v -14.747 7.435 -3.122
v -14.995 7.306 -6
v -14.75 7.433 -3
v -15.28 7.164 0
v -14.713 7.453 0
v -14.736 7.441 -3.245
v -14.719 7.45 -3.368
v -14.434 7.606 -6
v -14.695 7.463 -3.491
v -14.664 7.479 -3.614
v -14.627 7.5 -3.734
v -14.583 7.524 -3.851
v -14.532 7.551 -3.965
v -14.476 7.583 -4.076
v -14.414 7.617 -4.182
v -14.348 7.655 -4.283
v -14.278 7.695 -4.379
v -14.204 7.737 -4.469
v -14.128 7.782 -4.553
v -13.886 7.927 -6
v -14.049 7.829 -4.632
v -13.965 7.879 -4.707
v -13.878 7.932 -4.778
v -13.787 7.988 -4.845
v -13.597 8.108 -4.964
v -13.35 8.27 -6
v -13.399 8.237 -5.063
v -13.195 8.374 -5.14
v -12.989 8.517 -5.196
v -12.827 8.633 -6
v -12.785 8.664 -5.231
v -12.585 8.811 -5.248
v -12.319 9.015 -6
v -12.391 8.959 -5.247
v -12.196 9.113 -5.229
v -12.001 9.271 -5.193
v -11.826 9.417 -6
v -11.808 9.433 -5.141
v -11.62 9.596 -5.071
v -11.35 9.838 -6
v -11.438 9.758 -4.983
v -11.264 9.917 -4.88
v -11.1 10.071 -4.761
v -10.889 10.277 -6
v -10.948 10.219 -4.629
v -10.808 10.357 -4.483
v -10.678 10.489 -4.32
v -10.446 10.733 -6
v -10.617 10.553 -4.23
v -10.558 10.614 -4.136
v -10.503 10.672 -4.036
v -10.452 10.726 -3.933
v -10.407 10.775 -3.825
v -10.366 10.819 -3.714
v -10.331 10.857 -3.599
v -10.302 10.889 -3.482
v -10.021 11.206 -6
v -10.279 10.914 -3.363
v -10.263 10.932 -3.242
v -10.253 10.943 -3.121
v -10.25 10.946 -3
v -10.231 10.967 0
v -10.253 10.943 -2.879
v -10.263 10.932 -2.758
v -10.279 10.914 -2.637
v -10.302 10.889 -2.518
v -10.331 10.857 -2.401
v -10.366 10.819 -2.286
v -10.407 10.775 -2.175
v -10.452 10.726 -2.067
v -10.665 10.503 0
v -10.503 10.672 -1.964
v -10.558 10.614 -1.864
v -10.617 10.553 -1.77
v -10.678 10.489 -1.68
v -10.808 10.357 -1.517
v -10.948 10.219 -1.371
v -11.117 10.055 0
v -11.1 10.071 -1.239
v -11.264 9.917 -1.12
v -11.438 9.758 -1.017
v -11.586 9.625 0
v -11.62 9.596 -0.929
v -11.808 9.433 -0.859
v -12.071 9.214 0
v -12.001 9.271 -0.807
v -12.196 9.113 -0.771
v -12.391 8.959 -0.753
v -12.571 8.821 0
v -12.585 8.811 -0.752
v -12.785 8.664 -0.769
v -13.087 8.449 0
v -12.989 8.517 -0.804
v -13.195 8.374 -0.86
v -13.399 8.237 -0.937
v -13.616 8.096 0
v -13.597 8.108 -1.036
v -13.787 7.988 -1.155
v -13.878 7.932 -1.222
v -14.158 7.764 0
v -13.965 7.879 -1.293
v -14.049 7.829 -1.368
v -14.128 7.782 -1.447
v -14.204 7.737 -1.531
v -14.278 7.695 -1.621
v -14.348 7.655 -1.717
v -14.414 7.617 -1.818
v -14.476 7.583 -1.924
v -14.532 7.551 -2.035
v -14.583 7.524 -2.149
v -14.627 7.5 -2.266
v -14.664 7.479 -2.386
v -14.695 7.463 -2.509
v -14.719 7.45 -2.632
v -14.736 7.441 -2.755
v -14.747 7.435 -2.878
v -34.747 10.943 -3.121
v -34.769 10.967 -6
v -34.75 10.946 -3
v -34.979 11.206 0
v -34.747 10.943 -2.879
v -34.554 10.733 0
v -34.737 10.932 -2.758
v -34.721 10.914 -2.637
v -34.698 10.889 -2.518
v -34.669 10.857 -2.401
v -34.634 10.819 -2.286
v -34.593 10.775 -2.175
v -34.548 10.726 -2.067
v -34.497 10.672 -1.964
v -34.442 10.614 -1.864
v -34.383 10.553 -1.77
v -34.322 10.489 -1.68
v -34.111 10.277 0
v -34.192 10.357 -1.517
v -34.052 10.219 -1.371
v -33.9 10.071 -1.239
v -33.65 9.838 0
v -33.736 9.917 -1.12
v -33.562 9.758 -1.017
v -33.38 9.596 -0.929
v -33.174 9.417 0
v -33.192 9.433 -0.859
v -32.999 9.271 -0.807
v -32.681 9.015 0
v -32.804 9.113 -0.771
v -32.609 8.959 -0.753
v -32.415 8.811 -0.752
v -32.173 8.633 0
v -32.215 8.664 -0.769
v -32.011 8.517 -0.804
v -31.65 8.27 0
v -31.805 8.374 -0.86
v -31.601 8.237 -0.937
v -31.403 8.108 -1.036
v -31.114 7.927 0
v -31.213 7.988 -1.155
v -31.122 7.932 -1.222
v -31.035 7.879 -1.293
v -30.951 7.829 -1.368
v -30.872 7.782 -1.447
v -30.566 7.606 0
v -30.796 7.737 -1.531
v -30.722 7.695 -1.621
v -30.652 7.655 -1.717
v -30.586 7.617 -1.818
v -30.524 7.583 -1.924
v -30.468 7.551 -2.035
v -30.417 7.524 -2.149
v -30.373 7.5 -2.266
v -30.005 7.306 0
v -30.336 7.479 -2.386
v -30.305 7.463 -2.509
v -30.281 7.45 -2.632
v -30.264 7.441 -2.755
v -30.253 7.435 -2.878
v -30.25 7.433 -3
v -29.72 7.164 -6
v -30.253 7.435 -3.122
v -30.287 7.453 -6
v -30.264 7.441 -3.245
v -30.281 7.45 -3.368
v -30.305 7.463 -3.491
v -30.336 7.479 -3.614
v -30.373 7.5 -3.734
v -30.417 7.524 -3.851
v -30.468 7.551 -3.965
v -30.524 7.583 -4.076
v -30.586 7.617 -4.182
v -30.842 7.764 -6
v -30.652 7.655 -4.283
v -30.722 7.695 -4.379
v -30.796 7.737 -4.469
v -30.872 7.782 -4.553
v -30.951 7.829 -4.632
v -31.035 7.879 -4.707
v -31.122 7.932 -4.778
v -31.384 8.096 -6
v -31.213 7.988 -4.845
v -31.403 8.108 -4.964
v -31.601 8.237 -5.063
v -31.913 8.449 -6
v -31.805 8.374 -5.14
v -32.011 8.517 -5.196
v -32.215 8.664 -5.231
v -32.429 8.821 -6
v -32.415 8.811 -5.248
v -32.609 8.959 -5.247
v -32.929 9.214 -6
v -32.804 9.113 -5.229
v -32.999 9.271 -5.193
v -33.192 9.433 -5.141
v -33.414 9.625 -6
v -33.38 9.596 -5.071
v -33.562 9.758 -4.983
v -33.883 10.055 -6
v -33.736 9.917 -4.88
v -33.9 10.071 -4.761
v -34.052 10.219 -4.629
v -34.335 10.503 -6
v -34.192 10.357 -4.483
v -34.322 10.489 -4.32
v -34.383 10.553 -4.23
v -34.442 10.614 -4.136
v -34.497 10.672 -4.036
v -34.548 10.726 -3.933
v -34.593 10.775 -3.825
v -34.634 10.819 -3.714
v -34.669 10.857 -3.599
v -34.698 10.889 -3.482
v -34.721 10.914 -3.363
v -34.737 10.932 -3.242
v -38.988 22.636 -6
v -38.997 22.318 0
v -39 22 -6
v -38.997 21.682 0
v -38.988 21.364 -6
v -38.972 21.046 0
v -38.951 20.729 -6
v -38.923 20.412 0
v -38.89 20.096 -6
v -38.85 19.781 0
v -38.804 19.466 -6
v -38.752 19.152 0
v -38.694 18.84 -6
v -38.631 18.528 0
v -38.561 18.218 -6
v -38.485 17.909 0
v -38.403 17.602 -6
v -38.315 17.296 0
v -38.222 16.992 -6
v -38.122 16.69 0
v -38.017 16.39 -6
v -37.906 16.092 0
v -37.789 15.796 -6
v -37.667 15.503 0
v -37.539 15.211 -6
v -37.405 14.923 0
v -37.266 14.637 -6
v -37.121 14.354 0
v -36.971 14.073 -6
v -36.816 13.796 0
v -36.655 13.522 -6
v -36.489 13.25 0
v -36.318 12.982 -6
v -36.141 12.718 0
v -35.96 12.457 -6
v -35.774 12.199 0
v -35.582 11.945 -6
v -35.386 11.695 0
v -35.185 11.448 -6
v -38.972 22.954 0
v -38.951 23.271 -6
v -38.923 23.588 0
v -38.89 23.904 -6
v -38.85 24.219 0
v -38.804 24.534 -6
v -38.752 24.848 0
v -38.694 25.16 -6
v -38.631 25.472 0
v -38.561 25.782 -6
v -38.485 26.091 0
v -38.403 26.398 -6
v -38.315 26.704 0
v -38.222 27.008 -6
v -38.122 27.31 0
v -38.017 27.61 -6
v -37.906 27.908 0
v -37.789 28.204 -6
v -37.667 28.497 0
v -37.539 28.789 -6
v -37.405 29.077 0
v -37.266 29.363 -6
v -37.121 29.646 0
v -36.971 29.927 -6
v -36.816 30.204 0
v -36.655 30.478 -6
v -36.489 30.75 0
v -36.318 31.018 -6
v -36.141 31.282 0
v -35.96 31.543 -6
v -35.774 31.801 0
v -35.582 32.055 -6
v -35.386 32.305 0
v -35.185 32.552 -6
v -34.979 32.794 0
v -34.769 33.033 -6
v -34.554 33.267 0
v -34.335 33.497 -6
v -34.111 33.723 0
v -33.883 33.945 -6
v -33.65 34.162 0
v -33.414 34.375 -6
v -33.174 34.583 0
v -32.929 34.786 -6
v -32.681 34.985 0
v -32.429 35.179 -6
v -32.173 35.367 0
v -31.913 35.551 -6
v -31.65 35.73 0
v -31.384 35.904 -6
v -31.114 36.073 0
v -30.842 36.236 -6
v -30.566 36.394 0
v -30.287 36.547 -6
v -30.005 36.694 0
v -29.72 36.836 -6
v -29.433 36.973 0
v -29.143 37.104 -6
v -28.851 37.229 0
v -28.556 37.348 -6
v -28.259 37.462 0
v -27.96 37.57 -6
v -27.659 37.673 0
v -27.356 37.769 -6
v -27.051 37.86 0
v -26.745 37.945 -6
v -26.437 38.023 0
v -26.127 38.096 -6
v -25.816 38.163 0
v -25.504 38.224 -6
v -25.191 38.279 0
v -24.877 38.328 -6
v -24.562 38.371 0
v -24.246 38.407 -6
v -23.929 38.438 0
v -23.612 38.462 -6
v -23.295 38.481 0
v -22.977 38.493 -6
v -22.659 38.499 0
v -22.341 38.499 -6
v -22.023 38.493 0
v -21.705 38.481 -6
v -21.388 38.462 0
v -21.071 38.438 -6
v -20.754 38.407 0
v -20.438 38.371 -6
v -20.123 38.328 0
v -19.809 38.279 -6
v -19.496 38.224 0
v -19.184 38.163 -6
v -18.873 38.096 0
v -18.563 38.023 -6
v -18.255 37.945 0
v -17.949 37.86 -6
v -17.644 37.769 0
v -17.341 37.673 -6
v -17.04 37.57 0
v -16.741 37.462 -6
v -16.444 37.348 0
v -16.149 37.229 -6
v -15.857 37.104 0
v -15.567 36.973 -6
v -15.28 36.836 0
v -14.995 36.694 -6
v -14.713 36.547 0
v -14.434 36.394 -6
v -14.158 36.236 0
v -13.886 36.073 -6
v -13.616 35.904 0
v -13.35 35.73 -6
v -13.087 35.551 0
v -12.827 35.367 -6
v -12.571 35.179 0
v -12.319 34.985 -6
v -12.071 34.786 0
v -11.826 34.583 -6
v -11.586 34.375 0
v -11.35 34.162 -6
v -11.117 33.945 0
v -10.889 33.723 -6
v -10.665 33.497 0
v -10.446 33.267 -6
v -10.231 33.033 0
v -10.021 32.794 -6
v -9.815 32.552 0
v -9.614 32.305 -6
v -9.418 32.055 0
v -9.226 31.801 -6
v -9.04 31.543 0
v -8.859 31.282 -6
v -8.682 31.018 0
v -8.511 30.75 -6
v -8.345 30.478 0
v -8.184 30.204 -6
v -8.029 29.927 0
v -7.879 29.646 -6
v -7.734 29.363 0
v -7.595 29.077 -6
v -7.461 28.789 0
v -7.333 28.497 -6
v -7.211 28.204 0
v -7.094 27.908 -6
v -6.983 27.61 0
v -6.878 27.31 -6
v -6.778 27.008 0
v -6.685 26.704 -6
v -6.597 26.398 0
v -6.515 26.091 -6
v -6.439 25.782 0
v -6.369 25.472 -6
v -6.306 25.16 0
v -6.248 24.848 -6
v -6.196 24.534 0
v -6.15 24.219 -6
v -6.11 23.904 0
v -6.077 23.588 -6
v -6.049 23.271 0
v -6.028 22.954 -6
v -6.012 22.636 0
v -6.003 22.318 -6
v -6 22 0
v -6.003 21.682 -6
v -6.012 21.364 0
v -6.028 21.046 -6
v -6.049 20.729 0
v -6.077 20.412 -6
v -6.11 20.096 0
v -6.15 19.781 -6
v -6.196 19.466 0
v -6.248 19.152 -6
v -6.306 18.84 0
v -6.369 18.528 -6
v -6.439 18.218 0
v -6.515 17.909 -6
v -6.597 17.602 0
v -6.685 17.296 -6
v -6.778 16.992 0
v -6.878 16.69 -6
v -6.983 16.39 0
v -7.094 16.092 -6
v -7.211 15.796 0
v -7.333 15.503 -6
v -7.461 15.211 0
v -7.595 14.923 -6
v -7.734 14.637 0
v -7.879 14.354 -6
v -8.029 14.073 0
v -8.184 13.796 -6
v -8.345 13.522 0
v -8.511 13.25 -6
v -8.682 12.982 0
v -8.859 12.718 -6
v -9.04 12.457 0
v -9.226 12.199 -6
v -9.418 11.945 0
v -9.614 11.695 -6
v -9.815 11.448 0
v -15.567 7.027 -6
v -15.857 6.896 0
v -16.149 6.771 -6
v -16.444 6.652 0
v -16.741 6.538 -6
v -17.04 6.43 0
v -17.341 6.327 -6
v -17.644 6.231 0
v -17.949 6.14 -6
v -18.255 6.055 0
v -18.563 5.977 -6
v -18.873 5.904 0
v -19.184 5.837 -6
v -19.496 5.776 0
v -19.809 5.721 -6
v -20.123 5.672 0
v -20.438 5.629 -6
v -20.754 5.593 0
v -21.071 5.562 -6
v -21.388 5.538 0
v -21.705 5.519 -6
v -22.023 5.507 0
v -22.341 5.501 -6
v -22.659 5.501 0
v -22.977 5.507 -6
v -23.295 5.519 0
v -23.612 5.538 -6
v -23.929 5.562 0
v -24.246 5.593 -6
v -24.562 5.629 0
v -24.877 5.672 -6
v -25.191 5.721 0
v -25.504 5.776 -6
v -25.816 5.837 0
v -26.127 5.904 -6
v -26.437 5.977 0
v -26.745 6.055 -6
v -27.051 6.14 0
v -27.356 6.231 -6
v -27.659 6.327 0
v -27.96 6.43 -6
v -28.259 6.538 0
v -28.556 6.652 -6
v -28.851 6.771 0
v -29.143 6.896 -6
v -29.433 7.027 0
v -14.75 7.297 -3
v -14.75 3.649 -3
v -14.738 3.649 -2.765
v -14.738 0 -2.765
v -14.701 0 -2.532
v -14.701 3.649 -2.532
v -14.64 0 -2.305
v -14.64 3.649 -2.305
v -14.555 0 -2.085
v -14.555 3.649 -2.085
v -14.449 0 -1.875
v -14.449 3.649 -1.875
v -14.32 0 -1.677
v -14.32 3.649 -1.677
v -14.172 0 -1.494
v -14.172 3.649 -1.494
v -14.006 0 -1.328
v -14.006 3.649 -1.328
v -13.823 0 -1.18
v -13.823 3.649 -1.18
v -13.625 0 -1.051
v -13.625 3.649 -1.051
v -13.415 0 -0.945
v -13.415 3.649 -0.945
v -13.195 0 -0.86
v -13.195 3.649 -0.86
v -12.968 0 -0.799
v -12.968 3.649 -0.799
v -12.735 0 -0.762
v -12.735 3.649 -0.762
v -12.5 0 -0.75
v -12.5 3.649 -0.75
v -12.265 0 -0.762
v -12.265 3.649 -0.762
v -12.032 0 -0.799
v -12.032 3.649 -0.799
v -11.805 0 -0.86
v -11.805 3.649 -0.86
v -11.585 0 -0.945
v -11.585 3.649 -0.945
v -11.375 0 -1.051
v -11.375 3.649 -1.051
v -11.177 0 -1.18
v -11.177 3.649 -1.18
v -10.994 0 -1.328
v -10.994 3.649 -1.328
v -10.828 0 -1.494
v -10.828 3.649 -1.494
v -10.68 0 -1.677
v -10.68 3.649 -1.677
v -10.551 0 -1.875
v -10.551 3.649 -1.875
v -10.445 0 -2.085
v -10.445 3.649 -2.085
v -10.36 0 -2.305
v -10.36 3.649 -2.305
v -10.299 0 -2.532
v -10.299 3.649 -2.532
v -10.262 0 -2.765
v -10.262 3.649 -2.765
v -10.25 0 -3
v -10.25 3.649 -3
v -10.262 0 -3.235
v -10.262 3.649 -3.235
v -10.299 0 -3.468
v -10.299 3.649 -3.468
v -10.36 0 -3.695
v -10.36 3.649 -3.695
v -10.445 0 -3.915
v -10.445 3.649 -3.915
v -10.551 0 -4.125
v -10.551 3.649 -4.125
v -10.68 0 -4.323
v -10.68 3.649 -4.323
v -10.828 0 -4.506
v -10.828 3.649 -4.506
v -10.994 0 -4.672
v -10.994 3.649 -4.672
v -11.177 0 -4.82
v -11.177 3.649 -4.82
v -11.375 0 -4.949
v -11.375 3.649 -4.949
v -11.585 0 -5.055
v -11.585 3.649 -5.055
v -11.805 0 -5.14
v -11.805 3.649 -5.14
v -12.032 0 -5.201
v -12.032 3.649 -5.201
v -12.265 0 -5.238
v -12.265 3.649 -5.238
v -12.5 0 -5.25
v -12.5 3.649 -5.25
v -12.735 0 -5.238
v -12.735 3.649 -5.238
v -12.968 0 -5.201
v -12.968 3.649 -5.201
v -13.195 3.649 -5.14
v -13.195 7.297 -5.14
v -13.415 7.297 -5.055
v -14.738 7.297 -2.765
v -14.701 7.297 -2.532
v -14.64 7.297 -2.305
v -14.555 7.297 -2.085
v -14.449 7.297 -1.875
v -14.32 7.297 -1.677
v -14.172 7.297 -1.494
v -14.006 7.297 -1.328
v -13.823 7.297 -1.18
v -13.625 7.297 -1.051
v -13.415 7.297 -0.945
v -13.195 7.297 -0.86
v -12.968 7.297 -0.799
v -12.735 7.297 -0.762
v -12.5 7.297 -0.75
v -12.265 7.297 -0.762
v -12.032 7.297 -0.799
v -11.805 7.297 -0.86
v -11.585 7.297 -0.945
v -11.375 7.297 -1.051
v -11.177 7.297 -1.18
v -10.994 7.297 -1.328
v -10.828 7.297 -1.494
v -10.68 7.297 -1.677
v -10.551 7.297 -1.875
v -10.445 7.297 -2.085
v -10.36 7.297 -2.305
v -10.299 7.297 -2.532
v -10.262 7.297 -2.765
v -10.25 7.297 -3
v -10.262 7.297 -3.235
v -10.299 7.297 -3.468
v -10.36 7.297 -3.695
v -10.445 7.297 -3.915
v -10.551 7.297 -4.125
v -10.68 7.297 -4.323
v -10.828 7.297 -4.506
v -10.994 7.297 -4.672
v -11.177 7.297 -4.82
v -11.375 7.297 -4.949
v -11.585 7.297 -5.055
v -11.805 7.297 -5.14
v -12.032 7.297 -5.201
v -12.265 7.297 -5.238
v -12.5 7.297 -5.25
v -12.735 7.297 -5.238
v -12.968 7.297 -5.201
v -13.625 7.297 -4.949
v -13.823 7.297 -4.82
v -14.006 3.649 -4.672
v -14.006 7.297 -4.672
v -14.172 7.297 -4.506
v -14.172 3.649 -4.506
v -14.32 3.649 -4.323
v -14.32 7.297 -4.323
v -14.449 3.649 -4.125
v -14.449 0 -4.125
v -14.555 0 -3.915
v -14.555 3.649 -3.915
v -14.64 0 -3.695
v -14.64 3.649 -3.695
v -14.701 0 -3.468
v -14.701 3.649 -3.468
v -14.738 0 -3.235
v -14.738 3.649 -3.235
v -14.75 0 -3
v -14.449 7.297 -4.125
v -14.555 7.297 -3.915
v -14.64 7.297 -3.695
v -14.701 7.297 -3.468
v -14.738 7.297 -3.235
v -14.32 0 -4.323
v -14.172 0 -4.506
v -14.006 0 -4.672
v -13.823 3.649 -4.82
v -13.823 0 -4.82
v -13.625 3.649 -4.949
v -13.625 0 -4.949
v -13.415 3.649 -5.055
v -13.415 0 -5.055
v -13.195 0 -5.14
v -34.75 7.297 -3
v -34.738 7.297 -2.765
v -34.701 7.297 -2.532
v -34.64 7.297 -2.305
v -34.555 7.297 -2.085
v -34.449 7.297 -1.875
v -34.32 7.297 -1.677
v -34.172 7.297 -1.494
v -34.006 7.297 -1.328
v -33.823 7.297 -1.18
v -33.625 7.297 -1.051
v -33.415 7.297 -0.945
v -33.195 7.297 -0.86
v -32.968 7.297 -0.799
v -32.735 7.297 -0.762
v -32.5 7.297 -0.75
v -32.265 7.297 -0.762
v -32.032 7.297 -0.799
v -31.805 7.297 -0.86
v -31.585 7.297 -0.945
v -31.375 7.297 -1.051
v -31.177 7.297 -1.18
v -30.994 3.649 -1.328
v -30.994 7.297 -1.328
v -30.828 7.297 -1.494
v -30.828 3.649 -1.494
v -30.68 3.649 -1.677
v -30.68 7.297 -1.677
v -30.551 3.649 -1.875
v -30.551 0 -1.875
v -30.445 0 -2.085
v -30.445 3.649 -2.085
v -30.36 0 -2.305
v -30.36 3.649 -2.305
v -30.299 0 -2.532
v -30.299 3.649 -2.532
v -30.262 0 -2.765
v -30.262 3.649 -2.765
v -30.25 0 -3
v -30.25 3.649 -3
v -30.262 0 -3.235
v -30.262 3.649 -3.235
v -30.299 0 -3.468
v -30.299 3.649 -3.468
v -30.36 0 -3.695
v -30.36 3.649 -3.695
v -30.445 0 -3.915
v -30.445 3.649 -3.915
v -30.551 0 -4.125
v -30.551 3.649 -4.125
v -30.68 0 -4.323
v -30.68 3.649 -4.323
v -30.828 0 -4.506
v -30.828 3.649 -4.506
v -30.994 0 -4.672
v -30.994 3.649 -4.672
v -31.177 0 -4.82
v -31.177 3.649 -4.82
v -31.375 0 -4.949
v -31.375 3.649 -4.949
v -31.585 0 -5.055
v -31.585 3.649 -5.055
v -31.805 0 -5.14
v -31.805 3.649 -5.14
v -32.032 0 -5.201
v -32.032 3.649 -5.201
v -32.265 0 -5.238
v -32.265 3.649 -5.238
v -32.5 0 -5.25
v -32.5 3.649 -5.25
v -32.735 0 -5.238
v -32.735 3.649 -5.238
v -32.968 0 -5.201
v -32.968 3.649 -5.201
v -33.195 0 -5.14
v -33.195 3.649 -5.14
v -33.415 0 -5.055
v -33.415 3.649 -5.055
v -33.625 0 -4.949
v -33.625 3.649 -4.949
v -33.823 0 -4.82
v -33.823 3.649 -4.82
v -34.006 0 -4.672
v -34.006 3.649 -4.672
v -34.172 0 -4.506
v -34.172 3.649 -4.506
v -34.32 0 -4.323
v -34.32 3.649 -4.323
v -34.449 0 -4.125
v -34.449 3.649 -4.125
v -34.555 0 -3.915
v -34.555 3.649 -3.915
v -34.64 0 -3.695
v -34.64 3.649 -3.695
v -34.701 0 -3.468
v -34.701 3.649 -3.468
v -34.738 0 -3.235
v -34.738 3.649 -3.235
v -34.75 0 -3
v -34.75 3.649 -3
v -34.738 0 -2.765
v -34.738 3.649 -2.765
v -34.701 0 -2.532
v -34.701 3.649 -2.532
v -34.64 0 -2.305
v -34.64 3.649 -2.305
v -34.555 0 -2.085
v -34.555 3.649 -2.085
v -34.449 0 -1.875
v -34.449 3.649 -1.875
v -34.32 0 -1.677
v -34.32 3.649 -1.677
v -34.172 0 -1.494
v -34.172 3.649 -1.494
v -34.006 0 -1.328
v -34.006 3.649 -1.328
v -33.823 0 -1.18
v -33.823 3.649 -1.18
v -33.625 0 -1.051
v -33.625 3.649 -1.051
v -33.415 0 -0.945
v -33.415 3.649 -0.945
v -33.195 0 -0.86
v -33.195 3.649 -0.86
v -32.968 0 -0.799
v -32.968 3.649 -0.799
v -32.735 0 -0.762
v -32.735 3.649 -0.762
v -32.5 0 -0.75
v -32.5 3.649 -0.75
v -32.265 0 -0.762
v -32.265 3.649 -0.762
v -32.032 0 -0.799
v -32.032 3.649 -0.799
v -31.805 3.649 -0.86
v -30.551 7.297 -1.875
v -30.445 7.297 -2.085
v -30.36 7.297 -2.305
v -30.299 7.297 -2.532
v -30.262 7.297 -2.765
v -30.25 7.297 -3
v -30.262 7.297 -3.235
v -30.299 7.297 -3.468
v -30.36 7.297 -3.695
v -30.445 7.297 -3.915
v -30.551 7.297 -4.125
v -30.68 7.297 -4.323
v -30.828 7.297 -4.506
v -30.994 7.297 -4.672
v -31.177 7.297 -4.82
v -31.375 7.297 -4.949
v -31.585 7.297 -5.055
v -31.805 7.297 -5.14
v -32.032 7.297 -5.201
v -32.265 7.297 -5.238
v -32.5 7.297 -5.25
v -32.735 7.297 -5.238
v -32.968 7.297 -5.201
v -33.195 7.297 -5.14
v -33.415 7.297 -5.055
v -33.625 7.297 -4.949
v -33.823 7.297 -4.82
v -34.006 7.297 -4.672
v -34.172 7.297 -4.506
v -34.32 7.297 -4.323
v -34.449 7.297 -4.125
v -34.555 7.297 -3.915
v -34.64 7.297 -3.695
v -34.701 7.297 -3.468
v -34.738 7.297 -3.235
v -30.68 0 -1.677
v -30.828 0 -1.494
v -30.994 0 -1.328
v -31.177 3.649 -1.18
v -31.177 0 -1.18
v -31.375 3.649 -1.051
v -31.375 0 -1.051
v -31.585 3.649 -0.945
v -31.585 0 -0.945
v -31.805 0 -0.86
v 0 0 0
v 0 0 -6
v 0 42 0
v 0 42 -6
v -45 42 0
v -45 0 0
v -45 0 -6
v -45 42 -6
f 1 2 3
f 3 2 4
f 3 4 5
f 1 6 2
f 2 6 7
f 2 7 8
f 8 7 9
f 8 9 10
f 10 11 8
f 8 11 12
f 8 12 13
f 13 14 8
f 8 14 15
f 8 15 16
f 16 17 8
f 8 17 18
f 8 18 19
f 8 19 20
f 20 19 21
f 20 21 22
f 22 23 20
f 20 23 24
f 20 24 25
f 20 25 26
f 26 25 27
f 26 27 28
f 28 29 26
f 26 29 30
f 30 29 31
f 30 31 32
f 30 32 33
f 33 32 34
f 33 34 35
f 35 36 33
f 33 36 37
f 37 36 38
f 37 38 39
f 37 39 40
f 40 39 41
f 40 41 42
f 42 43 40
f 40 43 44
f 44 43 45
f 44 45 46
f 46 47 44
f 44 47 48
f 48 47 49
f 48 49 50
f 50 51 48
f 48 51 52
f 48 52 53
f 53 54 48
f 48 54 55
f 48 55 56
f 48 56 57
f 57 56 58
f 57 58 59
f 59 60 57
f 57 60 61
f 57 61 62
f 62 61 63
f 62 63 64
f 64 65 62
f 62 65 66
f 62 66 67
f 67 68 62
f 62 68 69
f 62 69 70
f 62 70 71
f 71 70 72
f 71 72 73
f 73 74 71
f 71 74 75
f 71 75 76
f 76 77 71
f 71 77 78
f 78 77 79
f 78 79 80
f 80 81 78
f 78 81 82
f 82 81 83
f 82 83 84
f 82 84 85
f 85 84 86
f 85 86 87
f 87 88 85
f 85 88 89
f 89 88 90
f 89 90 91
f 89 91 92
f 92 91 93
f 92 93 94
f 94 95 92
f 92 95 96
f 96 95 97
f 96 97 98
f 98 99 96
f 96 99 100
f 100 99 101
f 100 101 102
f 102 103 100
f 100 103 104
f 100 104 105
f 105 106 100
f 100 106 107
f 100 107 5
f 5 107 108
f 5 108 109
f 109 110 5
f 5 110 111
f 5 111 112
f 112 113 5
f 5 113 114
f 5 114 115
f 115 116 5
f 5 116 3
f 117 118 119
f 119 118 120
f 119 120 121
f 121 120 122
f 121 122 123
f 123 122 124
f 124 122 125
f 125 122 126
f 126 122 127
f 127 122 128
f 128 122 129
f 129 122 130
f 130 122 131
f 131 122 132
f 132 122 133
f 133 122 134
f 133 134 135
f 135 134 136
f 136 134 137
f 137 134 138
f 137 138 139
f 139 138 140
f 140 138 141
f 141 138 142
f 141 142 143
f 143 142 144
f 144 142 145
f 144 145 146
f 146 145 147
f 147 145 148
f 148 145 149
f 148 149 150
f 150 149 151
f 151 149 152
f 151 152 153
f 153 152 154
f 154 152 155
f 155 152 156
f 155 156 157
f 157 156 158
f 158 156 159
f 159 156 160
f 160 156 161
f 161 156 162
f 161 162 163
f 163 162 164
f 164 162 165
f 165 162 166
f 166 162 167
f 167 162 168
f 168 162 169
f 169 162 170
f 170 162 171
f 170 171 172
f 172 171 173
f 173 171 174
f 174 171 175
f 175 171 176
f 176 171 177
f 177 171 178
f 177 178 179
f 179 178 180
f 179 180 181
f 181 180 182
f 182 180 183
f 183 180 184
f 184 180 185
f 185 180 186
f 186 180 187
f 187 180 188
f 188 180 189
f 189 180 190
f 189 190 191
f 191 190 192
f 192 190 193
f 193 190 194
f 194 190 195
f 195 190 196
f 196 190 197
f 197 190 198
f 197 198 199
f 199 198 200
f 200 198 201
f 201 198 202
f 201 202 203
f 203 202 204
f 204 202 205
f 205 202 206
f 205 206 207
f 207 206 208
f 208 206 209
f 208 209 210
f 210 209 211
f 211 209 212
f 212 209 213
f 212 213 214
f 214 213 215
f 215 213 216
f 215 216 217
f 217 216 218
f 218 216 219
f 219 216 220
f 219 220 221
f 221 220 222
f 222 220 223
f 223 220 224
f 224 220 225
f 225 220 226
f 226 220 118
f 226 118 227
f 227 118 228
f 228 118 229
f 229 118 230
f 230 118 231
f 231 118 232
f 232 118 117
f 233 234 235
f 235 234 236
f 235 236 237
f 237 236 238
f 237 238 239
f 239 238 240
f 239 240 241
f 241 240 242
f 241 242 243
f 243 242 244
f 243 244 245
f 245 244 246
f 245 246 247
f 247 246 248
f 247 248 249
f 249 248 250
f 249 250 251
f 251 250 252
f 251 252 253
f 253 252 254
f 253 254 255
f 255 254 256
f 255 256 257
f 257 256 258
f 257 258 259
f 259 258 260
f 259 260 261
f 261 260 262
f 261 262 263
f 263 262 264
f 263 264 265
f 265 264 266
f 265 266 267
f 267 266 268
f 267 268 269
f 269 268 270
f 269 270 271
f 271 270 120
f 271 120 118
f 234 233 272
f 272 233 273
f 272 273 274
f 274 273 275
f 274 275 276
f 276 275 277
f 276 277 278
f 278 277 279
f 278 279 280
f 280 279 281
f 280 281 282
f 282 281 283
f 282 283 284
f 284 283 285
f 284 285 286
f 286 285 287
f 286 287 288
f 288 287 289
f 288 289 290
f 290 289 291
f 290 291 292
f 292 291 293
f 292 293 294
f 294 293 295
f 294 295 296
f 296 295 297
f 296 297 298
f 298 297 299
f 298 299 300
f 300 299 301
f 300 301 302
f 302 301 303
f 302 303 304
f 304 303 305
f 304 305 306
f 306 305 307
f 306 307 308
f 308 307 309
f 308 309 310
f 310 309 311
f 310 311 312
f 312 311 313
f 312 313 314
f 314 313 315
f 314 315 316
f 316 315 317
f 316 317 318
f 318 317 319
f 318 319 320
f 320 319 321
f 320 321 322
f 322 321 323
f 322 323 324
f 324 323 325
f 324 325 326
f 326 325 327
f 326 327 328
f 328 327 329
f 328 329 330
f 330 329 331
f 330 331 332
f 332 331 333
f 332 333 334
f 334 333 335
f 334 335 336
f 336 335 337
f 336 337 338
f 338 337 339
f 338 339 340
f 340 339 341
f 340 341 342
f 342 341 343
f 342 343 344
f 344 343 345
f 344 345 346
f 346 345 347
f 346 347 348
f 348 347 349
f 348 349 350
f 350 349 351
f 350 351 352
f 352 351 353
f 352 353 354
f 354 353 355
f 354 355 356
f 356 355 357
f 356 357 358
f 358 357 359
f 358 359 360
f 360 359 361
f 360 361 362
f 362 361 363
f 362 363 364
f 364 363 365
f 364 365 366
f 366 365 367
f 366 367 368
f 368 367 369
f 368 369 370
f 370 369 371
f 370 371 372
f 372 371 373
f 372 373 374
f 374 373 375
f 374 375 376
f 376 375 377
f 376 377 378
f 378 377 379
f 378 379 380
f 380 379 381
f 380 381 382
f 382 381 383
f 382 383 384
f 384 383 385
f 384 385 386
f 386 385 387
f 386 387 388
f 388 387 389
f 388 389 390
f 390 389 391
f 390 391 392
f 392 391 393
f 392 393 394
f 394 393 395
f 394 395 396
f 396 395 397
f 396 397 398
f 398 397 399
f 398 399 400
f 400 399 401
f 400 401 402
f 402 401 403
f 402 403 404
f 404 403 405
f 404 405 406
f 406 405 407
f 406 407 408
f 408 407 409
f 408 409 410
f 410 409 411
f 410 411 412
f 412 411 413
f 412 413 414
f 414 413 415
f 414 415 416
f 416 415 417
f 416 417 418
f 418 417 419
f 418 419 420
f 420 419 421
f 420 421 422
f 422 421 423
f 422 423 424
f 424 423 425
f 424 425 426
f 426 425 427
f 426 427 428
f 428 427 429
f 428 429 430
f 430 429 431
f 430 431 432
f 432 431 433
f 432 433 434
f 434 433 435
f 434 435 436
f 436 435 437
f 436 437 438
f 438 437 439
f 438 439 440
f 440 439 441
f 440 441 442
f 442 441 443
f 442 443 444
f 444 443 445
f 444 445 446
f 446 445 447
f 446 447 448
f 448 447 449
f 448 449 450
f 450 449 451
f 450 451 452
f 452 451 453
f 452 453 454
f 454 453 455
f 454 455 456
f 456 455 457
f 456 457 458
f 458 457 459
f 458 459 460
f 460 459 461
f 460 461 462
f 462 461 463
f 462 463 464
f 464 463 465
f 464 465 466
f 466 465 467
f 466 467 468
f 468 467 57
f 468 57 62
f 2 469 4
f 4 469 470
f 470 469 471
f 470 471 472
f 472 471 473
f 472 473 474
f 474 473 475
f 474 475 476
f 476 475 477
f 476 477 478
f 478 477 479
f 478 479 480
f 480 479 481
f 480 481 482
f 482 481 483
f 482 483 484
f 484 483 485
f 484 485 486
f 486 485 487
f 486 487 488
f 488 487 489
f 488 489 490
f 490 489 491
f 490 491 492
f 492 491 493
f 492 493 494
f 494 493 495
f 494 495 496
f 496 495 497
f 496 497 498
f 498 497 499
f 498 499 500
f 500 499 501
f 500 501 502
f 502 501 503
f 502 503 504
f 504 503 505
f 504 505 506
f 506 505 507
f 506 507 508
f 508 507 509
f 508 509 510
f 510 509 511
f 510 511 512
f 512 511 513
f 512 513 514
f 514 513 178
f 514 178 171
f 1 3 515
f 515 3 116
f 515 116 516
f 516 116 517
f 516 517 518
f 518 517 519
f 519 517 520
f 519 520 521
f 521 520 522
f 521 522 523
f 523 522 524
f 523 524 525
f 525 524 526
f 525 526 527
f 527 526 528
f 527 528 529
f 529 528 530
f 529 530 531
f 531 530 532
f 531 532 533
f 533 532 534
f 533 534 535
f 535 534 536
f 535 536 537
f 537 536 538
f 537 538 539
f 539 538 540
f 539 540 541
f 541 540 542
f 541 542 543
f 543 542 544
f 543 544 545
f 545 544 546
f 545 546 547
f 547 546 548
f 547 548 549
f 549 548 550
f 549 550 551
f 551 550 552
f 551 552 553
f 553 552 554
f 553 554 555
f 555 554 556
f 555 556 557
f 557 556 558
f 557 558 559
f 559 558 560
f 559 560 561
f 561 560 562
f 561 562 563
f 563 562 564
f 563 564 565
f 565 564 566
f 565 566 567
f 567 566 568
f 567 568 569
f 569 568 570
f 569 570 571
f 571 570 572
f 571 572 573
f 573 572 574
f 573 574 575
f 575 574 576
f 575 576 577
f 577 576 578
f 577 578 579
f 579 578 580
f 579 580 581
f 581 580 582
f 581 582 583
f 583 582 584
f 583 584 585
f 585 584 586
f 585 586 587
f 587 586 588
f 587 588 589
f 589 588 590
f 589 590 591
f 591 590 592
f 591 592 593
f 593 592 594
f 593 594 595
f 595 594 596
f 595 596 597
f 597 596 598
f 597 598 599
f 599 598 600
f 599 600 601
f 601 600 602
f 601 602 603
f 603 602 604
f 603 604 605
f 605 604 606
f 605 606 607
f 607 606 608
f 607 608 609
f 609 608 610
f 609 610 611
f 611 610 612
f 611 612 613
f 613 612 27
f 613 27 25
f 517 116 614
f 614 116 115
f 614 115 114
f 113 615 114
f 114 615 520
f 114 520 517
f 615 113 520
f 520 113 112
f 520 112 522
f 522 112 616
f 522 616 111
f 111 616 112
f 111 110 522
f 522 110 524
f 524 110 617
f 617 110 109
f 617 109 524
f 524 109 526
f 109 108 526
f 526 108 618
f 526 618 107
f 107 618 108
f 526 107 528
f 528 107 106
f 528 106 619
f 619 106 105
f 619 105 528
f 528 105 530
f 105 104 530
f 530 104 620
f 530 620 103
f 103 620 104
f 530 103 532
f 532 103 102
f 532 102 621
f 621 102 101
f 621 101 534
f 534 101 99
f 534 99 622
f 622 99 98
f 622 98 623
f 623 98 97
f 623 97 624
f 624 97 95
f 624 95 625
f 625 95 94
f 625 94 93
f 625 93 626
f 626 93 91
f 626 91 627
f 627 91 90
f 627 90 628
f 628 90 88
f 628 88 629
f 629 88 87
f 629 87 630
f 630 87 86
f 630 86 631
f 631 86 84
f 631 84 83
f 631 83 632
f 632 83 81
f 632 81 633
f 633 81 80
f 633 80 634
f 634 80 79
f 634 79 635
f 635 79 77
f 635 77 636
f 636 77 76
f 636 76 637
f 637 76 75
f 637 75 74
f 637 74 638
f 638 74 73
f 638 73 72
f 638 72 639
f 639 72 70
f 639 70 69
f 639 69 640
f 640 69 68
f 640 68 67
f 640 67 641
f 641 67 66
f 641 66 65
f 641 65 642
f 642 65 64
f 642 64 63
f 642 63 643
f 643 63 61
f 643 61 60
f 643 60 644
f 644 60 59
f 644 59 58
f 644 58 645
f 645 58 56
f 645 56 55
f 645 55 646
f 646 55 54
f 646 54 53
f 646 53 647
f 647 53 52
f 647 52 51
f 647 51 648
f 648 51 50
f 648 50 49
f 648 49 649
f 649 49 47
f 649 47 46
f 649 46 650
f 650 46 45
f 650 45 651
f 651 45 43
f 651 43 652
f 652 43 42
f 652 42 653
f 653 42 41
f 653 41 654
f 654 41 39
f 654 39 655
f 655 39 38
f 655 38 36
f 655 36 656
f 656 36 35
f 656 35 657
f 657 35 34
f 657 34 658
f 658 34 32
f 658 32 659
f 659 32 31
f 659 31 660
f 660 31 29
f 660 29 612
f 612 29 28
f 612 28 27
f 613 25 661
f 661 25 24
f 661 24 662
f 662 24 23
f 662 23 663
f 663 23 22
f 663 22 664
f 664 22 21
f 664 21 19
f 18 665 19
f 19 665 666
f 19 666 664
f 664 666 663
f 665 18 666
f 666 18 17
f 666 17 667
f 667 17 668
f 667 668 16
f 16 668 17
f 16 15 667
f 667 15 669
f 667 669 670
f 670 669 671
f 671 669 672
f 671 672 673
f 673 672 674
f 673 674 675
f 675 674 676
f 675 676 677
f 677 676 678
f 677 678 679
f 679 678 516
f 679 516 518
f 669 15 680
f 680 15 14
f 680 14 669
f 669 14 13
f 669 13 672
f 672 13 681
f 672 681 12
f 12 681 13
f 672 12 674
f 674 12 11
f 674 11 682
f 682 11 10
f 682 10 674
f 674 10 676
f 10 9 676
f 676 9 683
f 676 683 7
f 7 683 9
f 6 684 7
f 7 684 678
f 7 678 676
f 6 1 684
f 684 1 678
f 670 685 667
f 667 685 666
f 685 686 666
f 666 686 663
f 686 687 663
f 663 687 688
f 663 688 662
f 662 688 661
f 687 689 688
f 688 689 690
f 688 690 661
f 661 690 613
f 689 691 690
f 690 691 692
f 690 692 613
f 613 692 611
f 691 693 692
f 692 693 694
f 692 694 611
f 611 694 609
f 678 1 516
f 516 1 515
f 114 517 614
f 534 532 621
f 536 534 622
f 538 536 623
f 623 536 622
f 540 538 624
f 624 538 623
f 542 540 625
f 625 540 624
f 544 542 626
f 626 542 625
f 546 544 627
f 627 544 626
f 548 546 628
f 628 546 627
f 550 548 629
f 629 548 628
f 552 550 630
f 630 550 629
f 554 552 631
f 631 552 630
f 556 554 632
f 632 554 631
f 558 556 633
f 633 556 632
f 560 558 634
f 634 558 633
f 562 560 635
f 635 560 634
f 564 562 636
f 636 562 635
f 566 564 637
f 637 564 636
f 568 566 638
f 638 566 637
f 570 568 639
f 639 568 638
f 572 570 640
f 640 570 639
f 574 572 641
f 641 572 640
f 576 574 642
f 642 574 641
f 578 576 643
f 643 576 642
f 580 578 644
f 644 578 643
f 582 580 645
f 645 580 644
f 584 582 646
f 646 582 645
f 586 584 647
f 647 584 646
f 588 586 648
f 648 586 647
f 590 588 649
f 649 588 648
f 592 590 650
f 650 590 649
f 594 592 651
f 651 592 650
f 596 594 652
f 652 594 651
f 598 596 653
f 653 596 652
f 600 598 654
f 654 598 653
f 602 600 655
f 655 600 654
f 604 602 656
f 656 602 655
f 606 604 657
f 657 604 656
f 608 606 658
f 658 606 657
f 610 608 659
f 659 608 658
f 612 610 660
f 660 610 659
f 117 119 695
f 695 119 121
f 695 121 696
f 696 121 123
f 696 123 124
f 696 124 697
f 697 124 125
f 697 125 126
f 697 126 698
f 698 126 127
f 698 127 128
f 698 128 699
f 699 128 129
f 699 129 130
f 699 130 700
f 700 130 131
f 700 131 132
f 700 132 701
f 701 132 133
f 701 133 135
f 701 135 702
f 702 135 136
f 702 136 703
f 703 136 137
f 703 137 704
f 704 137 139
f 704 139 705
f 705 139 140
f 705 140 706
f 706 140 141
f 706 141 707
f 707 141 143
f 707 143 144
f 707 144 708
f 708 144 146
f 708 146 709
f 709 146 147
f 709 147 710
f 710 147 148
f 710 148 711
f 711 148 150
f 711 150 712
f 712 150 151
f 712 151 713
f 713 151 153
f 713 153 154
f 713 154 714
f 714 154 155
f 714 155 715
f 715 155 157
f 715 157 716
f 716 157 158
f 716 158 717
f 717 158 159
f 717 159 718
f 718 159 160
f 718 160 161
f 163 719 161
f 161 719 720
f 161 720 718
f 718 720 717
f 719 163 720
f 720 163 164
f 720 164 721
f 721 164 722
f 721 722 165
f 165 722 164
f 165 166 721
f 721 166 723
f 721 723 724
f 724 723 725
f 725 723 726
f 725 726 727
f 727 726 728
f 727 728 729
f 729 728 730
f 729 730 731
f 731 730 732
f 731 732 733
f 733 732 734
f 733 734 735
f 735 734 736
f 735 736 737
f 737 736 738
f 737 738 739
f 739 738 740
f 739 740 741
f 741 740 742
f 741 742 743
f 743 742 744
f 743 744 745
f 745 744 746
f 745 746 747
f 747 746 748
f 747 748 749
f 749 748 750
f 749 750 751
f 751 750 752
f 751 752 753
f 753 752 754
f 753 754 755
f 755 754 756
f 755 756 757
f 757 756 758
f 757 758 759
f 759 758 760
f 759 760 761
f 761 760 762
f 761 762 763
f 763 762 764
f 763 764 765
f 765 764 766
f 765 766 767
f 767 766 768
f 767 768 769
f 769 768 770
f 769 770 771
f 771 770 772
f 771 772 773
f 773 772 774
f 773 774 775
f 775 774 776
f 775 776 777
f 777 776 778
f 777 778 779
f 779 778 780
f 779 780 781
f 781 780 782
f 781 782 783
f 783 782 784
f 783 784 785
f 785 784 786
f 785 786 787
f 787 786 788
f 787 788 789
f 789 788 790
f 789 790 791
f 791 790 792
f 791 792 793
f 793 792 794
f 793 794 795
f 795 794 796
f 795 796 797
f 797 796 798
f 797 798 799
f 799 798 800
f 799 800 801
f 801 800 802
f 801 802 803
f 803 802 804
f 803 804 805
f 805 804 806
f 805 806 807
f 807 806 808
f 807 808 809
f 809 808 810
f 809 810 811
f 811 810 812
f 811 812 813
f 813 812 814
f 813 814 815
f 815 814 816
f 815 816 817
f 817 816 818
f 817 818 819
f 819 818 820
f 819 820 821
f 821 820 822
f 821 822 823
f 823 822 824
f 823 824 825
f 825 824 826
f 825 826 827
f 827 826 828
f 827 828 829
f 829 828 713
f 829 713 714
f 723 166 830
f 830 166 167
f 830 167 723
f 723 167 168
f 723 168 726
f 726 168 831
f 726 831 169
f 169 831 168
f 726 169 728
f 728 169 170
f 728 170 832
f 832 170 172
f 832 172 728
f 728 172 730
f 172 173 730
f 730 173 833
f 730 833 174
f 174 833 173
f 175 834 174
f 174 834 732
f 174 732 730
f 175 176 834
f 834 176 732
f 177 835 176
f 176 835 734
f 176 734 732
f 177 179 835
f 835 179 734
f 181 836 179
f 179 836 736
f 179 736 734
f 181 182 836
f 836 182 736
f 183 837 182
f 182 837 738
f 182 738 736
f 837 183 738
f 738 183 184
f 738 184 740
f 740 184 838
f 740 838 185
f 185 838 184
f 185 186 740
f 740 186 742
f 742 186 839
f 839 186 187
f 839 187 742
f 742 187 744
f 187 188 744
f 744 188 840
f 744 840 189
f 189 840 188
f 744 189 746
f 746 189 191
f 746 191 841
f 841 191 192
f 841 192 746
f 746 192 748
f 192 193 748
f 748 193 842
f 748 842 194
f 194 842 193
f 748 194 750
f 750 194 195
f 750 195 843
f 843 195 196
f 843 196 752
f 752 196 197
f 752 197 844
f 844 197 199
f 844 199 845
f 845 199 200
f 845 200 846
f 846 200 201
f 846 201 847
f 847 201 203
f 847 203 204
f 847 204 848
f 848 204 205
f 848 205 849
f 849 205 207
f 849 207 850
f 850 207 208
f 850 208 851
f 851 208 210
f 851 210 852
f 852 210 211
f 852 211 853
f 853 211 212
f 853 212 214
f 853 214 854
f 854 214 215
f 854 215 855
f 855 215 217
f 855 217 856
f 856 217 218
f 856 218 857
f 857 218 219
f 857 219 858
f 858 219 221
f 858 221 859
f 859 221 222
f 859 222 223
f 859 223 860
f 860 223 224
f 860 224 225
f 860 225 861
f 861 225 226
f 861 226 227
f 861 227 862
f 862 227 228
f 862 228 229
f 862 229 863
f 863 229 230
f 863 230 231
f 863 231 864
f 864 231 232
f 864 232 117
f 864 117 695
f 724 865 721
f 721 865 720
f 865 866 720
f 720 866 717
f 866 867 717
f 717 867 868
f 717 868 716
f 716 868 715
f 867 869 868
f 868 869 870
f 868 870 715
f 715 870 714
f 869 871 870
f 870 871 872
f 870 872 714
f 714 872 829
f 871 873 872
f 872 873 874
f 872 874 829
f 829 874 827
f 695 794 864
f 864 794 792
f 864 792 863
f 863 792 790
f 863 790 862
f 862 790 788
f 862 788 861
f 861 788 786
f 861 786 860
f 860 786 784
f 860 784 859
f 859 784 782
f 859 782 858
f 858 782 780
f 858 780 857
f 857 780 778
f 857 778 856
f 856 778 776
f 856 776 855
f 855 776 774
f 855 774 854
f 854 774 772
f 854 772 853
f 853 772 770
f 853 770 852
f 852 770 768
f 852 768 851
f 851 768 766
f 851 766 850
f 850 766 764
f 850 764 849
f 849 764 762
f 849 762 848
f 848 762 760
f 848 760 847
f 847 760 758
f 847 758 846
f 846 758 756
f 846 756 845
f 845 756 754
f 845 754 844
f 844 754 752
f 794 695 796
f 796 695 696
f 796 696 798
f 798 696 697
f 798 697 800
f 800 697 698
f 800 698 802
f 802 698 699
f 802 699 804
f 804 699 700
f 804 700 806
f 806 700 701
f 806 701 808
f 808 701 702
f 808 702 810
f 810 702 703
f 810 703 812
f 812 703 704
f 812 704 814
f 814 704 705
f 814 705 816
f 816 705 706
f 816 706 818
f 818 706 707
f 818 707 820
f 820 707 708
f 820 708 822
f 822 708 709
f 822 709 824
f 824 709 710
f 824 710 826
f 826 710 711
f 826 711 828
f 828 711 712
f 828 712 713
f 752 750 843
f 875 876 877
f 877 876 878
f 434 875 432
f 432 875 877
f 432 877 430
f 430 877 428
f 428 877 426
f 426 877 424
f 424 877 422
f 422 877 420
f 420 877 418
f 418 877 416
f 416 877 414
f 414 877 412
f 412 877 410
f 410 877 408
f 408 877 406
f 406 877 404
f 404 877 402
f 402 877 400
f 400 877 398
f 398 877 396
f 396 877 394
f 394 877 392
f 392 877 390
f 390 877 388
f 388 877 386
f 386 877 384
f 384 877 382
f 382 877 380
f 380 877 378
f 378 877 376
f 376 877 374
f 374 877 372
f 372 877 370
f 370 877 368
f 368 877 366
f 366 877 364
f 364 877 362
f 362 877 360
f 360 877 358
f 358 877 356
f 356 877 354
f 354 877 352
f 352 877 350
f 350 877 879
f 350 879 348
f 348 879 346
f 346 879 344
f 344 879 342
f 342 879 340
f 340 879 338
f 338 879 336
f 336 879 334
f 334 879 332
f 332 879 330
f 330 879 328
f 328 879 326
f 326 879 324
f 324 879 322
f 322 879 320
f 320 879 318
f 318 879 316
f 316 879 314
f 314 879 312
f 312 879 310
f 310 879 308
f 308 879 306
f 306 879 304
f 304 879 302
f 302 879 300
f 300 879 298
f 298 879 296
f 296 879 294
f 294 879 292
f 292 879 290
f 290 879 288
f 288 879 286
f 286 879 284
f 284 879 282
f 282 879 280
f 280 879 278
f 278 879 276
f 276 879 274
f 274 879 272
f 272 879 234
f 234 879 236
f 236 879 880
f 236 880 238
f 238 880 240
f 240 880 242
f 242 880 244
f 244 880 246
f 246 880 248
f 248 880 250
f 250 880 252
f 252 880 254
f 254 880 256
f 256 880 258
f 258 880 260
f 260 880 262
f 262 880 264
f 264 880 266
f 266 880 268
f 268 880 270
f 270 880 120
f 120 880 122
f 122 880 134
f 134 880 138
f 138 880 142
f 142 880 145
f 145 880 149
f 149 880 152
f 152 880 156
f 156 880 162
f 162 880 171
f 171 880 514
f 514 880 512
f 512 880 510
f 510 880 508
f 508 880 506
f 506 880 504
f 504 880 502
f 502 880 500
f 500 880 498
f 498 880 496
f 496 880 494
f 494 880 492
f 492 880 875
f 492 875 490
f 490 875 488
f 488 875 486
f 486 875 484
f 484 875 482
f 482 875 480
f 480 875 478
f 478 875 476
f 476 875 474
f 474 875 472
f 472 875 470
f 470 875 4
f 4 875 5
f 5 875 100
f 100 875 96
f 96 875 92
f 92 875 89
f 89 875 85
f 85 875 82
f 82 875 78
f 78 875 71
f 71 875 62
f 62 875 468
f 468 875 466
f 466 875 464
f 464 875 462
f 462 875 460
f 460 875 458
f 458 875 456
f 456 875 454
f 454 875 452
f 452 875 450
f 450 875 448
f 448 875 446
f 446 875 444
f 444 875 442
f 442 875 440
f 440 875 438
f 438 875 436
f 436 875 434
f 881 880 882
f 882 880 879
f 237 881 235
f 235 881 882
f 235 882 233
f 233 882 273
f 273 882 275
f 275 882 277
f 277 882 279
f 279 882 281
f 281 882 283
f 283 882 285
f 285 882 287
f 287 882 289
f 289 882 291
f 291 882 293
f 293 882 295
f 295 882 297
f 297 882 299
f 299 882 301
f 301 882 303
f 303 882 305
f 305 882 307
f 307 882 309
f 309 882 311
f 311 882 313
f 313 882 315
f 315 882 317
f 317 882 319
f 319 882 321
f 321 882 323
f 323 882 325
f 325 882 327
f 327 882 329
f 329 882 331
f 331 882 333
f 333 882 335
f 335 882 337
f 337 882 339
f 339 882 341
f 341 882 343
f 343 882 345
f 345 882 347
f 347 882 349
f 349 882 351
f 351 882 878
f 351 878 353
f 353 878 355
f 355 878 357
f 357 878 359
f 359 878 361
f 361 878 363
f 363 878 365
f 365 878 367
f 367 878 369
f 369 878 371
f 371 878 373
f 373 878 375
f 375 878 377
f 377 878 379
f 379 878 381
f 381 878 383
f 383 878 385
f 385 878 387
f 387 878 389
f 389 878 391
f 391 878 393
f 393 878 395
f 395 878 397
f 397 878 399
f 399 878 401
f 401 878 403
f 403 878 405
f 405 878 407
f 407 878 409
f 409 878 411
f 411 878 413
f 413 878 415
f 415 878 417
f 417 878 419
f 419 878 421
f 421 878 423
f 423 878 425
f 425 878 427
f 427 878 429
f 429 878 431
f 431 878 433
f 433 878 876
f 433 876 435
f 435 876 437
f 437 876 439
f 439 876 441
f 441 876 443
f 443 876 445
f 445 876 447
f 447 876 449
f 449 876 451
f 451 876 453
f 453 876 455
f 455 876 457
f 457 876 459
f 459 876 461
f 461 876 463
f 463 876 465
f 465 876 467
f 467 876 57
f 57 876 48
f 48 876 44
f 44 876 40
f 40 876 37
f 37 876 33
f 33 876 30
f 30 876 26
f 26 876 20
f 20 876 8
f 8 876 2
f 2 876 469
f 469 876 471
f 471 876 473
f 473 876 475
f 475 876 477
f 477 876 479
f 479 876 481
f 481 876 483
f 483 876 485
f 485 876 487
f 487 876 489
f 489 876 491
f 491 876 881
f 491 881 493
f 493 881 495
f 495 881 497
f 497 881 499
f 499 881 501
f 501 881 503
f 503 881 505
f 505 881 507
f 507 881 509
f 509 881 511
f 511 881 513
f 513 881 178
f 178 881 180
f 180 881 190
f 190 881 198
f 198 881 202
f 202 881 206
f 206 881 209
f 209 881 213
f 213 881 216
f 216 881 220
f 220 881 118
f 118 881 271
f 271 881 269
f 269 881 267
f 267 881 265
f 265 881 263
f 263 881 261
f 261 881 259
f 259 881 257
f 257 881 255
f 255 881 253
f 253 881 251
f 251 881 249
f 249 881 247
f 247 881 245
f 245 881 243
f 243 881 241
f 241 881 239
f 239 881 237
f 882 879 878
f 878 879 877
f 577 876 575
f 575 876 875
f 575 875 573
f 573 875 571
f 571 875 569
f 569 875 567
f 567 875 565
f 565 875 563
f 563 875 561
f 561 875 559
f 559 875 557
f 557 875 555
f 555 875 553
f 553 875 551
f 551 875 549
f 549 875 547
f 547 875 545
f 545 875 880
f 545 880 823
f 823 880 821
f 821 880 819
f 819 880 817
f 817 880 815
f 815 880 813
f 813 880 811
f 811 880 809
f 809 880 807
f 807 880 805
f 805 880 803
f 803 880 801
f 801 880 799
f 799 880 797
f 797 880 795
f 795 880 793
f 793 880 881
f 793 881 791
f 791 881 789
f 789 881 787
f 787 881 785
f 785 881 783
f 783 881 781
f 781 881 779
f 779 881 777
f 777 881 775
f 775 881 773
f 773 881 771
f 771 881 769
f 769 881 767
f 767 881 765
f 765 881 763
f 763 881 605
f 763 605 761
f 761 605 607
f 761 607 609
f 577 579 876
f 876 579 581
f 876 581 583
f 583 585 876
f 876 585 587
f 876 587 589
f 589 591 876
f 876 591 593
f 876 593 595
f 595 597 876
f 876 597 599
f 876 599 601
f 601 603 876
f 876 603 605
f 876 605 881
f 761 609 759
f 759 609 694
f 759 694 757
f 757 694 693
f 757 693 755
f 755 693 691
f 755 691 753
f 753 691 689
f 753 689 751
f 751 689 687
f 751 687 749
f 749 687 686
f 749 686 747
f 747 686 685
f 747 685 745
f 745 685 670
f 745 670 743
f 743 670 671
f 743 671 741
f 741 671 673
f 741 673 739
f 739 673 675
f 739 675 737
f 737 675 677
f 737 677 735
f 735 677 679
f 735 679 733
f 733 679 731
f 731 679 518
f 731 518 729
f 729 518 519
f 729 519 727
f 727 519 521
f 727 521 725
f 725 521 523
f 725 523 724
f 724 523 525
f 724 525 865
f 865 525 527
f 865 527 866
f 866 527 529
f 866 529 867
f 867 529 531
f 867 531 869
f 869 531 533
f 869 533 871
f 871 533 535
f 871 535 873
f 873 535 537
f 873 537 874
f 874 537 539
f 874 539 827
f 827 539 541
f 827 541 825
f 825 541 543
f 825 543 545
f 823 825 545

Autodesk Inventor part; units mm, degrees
ref_plane "YZ Plane" through (0, 0, 0) normal (1, 0, 0) x (0, 1, 0)
ref_plane "XZ Plane" through (0, 0, 0) normal (0, 1, 0) x (-1, 0, 0)
ref_plane "XY Plane" through (0, 0, 0) normal (0, 0, 1) x (1, 0, 0)
sketch "Sketch1" plane through (0, 0, 0) normal (0, 1, 0) x (-1, 0, 0)
  line L0 (0, 0) -> (45, 0)
  line L1 (45, 0) -> (45, -6)
  line L2 (45, -6) -> (0, -6)
  line L3 (0, -6) -> (0, 0)
  dimension "d0" = 45
  dimension "d1" = 6
extrude "Extrusion1" add sketch "Sketch1" along normal blind 42
sketch "Sketch3" plane through (0, 0, 0) normal (0, -1, 0) x (1, 0, 0)
  line L0 (-12.5, 0) -> (-32.5, 0) projected
  line L1 (-22.5, 0) -> (-22.5, -3)
  line L2 (-22.5, -3) -> (-12.5, -3)
  line L3 (-22.5, -3) -> (-32.5, -3)
  point P0 (0, 0)
  dimension "d9" = 3
  dimension "d10" = 10
  dimension "d11" = 10
hole "Hole1" at (-12.5, 0, -3) at (-32.5, 0, -3) direction (0, 1, 0) diameter 4.5 depth 11 tip angle 118
sketch "Sketch4" plane through (-45, 0, 0) normal (0, 0, 1) x (1, 0, 0)
  line L0 (45, 0) -> (0, 0) projected
  line L1 (22.5, 0) -> (22.5, 22)
  circle A0 centre (22.5, 22) radius 16.5
  dimension "d19" = 22
  dimension "d20" = 33
extrude "Extrusion3" cut sketch "Sketch4" against normal through all
properties part number "Motor_Mount_Backplate"
